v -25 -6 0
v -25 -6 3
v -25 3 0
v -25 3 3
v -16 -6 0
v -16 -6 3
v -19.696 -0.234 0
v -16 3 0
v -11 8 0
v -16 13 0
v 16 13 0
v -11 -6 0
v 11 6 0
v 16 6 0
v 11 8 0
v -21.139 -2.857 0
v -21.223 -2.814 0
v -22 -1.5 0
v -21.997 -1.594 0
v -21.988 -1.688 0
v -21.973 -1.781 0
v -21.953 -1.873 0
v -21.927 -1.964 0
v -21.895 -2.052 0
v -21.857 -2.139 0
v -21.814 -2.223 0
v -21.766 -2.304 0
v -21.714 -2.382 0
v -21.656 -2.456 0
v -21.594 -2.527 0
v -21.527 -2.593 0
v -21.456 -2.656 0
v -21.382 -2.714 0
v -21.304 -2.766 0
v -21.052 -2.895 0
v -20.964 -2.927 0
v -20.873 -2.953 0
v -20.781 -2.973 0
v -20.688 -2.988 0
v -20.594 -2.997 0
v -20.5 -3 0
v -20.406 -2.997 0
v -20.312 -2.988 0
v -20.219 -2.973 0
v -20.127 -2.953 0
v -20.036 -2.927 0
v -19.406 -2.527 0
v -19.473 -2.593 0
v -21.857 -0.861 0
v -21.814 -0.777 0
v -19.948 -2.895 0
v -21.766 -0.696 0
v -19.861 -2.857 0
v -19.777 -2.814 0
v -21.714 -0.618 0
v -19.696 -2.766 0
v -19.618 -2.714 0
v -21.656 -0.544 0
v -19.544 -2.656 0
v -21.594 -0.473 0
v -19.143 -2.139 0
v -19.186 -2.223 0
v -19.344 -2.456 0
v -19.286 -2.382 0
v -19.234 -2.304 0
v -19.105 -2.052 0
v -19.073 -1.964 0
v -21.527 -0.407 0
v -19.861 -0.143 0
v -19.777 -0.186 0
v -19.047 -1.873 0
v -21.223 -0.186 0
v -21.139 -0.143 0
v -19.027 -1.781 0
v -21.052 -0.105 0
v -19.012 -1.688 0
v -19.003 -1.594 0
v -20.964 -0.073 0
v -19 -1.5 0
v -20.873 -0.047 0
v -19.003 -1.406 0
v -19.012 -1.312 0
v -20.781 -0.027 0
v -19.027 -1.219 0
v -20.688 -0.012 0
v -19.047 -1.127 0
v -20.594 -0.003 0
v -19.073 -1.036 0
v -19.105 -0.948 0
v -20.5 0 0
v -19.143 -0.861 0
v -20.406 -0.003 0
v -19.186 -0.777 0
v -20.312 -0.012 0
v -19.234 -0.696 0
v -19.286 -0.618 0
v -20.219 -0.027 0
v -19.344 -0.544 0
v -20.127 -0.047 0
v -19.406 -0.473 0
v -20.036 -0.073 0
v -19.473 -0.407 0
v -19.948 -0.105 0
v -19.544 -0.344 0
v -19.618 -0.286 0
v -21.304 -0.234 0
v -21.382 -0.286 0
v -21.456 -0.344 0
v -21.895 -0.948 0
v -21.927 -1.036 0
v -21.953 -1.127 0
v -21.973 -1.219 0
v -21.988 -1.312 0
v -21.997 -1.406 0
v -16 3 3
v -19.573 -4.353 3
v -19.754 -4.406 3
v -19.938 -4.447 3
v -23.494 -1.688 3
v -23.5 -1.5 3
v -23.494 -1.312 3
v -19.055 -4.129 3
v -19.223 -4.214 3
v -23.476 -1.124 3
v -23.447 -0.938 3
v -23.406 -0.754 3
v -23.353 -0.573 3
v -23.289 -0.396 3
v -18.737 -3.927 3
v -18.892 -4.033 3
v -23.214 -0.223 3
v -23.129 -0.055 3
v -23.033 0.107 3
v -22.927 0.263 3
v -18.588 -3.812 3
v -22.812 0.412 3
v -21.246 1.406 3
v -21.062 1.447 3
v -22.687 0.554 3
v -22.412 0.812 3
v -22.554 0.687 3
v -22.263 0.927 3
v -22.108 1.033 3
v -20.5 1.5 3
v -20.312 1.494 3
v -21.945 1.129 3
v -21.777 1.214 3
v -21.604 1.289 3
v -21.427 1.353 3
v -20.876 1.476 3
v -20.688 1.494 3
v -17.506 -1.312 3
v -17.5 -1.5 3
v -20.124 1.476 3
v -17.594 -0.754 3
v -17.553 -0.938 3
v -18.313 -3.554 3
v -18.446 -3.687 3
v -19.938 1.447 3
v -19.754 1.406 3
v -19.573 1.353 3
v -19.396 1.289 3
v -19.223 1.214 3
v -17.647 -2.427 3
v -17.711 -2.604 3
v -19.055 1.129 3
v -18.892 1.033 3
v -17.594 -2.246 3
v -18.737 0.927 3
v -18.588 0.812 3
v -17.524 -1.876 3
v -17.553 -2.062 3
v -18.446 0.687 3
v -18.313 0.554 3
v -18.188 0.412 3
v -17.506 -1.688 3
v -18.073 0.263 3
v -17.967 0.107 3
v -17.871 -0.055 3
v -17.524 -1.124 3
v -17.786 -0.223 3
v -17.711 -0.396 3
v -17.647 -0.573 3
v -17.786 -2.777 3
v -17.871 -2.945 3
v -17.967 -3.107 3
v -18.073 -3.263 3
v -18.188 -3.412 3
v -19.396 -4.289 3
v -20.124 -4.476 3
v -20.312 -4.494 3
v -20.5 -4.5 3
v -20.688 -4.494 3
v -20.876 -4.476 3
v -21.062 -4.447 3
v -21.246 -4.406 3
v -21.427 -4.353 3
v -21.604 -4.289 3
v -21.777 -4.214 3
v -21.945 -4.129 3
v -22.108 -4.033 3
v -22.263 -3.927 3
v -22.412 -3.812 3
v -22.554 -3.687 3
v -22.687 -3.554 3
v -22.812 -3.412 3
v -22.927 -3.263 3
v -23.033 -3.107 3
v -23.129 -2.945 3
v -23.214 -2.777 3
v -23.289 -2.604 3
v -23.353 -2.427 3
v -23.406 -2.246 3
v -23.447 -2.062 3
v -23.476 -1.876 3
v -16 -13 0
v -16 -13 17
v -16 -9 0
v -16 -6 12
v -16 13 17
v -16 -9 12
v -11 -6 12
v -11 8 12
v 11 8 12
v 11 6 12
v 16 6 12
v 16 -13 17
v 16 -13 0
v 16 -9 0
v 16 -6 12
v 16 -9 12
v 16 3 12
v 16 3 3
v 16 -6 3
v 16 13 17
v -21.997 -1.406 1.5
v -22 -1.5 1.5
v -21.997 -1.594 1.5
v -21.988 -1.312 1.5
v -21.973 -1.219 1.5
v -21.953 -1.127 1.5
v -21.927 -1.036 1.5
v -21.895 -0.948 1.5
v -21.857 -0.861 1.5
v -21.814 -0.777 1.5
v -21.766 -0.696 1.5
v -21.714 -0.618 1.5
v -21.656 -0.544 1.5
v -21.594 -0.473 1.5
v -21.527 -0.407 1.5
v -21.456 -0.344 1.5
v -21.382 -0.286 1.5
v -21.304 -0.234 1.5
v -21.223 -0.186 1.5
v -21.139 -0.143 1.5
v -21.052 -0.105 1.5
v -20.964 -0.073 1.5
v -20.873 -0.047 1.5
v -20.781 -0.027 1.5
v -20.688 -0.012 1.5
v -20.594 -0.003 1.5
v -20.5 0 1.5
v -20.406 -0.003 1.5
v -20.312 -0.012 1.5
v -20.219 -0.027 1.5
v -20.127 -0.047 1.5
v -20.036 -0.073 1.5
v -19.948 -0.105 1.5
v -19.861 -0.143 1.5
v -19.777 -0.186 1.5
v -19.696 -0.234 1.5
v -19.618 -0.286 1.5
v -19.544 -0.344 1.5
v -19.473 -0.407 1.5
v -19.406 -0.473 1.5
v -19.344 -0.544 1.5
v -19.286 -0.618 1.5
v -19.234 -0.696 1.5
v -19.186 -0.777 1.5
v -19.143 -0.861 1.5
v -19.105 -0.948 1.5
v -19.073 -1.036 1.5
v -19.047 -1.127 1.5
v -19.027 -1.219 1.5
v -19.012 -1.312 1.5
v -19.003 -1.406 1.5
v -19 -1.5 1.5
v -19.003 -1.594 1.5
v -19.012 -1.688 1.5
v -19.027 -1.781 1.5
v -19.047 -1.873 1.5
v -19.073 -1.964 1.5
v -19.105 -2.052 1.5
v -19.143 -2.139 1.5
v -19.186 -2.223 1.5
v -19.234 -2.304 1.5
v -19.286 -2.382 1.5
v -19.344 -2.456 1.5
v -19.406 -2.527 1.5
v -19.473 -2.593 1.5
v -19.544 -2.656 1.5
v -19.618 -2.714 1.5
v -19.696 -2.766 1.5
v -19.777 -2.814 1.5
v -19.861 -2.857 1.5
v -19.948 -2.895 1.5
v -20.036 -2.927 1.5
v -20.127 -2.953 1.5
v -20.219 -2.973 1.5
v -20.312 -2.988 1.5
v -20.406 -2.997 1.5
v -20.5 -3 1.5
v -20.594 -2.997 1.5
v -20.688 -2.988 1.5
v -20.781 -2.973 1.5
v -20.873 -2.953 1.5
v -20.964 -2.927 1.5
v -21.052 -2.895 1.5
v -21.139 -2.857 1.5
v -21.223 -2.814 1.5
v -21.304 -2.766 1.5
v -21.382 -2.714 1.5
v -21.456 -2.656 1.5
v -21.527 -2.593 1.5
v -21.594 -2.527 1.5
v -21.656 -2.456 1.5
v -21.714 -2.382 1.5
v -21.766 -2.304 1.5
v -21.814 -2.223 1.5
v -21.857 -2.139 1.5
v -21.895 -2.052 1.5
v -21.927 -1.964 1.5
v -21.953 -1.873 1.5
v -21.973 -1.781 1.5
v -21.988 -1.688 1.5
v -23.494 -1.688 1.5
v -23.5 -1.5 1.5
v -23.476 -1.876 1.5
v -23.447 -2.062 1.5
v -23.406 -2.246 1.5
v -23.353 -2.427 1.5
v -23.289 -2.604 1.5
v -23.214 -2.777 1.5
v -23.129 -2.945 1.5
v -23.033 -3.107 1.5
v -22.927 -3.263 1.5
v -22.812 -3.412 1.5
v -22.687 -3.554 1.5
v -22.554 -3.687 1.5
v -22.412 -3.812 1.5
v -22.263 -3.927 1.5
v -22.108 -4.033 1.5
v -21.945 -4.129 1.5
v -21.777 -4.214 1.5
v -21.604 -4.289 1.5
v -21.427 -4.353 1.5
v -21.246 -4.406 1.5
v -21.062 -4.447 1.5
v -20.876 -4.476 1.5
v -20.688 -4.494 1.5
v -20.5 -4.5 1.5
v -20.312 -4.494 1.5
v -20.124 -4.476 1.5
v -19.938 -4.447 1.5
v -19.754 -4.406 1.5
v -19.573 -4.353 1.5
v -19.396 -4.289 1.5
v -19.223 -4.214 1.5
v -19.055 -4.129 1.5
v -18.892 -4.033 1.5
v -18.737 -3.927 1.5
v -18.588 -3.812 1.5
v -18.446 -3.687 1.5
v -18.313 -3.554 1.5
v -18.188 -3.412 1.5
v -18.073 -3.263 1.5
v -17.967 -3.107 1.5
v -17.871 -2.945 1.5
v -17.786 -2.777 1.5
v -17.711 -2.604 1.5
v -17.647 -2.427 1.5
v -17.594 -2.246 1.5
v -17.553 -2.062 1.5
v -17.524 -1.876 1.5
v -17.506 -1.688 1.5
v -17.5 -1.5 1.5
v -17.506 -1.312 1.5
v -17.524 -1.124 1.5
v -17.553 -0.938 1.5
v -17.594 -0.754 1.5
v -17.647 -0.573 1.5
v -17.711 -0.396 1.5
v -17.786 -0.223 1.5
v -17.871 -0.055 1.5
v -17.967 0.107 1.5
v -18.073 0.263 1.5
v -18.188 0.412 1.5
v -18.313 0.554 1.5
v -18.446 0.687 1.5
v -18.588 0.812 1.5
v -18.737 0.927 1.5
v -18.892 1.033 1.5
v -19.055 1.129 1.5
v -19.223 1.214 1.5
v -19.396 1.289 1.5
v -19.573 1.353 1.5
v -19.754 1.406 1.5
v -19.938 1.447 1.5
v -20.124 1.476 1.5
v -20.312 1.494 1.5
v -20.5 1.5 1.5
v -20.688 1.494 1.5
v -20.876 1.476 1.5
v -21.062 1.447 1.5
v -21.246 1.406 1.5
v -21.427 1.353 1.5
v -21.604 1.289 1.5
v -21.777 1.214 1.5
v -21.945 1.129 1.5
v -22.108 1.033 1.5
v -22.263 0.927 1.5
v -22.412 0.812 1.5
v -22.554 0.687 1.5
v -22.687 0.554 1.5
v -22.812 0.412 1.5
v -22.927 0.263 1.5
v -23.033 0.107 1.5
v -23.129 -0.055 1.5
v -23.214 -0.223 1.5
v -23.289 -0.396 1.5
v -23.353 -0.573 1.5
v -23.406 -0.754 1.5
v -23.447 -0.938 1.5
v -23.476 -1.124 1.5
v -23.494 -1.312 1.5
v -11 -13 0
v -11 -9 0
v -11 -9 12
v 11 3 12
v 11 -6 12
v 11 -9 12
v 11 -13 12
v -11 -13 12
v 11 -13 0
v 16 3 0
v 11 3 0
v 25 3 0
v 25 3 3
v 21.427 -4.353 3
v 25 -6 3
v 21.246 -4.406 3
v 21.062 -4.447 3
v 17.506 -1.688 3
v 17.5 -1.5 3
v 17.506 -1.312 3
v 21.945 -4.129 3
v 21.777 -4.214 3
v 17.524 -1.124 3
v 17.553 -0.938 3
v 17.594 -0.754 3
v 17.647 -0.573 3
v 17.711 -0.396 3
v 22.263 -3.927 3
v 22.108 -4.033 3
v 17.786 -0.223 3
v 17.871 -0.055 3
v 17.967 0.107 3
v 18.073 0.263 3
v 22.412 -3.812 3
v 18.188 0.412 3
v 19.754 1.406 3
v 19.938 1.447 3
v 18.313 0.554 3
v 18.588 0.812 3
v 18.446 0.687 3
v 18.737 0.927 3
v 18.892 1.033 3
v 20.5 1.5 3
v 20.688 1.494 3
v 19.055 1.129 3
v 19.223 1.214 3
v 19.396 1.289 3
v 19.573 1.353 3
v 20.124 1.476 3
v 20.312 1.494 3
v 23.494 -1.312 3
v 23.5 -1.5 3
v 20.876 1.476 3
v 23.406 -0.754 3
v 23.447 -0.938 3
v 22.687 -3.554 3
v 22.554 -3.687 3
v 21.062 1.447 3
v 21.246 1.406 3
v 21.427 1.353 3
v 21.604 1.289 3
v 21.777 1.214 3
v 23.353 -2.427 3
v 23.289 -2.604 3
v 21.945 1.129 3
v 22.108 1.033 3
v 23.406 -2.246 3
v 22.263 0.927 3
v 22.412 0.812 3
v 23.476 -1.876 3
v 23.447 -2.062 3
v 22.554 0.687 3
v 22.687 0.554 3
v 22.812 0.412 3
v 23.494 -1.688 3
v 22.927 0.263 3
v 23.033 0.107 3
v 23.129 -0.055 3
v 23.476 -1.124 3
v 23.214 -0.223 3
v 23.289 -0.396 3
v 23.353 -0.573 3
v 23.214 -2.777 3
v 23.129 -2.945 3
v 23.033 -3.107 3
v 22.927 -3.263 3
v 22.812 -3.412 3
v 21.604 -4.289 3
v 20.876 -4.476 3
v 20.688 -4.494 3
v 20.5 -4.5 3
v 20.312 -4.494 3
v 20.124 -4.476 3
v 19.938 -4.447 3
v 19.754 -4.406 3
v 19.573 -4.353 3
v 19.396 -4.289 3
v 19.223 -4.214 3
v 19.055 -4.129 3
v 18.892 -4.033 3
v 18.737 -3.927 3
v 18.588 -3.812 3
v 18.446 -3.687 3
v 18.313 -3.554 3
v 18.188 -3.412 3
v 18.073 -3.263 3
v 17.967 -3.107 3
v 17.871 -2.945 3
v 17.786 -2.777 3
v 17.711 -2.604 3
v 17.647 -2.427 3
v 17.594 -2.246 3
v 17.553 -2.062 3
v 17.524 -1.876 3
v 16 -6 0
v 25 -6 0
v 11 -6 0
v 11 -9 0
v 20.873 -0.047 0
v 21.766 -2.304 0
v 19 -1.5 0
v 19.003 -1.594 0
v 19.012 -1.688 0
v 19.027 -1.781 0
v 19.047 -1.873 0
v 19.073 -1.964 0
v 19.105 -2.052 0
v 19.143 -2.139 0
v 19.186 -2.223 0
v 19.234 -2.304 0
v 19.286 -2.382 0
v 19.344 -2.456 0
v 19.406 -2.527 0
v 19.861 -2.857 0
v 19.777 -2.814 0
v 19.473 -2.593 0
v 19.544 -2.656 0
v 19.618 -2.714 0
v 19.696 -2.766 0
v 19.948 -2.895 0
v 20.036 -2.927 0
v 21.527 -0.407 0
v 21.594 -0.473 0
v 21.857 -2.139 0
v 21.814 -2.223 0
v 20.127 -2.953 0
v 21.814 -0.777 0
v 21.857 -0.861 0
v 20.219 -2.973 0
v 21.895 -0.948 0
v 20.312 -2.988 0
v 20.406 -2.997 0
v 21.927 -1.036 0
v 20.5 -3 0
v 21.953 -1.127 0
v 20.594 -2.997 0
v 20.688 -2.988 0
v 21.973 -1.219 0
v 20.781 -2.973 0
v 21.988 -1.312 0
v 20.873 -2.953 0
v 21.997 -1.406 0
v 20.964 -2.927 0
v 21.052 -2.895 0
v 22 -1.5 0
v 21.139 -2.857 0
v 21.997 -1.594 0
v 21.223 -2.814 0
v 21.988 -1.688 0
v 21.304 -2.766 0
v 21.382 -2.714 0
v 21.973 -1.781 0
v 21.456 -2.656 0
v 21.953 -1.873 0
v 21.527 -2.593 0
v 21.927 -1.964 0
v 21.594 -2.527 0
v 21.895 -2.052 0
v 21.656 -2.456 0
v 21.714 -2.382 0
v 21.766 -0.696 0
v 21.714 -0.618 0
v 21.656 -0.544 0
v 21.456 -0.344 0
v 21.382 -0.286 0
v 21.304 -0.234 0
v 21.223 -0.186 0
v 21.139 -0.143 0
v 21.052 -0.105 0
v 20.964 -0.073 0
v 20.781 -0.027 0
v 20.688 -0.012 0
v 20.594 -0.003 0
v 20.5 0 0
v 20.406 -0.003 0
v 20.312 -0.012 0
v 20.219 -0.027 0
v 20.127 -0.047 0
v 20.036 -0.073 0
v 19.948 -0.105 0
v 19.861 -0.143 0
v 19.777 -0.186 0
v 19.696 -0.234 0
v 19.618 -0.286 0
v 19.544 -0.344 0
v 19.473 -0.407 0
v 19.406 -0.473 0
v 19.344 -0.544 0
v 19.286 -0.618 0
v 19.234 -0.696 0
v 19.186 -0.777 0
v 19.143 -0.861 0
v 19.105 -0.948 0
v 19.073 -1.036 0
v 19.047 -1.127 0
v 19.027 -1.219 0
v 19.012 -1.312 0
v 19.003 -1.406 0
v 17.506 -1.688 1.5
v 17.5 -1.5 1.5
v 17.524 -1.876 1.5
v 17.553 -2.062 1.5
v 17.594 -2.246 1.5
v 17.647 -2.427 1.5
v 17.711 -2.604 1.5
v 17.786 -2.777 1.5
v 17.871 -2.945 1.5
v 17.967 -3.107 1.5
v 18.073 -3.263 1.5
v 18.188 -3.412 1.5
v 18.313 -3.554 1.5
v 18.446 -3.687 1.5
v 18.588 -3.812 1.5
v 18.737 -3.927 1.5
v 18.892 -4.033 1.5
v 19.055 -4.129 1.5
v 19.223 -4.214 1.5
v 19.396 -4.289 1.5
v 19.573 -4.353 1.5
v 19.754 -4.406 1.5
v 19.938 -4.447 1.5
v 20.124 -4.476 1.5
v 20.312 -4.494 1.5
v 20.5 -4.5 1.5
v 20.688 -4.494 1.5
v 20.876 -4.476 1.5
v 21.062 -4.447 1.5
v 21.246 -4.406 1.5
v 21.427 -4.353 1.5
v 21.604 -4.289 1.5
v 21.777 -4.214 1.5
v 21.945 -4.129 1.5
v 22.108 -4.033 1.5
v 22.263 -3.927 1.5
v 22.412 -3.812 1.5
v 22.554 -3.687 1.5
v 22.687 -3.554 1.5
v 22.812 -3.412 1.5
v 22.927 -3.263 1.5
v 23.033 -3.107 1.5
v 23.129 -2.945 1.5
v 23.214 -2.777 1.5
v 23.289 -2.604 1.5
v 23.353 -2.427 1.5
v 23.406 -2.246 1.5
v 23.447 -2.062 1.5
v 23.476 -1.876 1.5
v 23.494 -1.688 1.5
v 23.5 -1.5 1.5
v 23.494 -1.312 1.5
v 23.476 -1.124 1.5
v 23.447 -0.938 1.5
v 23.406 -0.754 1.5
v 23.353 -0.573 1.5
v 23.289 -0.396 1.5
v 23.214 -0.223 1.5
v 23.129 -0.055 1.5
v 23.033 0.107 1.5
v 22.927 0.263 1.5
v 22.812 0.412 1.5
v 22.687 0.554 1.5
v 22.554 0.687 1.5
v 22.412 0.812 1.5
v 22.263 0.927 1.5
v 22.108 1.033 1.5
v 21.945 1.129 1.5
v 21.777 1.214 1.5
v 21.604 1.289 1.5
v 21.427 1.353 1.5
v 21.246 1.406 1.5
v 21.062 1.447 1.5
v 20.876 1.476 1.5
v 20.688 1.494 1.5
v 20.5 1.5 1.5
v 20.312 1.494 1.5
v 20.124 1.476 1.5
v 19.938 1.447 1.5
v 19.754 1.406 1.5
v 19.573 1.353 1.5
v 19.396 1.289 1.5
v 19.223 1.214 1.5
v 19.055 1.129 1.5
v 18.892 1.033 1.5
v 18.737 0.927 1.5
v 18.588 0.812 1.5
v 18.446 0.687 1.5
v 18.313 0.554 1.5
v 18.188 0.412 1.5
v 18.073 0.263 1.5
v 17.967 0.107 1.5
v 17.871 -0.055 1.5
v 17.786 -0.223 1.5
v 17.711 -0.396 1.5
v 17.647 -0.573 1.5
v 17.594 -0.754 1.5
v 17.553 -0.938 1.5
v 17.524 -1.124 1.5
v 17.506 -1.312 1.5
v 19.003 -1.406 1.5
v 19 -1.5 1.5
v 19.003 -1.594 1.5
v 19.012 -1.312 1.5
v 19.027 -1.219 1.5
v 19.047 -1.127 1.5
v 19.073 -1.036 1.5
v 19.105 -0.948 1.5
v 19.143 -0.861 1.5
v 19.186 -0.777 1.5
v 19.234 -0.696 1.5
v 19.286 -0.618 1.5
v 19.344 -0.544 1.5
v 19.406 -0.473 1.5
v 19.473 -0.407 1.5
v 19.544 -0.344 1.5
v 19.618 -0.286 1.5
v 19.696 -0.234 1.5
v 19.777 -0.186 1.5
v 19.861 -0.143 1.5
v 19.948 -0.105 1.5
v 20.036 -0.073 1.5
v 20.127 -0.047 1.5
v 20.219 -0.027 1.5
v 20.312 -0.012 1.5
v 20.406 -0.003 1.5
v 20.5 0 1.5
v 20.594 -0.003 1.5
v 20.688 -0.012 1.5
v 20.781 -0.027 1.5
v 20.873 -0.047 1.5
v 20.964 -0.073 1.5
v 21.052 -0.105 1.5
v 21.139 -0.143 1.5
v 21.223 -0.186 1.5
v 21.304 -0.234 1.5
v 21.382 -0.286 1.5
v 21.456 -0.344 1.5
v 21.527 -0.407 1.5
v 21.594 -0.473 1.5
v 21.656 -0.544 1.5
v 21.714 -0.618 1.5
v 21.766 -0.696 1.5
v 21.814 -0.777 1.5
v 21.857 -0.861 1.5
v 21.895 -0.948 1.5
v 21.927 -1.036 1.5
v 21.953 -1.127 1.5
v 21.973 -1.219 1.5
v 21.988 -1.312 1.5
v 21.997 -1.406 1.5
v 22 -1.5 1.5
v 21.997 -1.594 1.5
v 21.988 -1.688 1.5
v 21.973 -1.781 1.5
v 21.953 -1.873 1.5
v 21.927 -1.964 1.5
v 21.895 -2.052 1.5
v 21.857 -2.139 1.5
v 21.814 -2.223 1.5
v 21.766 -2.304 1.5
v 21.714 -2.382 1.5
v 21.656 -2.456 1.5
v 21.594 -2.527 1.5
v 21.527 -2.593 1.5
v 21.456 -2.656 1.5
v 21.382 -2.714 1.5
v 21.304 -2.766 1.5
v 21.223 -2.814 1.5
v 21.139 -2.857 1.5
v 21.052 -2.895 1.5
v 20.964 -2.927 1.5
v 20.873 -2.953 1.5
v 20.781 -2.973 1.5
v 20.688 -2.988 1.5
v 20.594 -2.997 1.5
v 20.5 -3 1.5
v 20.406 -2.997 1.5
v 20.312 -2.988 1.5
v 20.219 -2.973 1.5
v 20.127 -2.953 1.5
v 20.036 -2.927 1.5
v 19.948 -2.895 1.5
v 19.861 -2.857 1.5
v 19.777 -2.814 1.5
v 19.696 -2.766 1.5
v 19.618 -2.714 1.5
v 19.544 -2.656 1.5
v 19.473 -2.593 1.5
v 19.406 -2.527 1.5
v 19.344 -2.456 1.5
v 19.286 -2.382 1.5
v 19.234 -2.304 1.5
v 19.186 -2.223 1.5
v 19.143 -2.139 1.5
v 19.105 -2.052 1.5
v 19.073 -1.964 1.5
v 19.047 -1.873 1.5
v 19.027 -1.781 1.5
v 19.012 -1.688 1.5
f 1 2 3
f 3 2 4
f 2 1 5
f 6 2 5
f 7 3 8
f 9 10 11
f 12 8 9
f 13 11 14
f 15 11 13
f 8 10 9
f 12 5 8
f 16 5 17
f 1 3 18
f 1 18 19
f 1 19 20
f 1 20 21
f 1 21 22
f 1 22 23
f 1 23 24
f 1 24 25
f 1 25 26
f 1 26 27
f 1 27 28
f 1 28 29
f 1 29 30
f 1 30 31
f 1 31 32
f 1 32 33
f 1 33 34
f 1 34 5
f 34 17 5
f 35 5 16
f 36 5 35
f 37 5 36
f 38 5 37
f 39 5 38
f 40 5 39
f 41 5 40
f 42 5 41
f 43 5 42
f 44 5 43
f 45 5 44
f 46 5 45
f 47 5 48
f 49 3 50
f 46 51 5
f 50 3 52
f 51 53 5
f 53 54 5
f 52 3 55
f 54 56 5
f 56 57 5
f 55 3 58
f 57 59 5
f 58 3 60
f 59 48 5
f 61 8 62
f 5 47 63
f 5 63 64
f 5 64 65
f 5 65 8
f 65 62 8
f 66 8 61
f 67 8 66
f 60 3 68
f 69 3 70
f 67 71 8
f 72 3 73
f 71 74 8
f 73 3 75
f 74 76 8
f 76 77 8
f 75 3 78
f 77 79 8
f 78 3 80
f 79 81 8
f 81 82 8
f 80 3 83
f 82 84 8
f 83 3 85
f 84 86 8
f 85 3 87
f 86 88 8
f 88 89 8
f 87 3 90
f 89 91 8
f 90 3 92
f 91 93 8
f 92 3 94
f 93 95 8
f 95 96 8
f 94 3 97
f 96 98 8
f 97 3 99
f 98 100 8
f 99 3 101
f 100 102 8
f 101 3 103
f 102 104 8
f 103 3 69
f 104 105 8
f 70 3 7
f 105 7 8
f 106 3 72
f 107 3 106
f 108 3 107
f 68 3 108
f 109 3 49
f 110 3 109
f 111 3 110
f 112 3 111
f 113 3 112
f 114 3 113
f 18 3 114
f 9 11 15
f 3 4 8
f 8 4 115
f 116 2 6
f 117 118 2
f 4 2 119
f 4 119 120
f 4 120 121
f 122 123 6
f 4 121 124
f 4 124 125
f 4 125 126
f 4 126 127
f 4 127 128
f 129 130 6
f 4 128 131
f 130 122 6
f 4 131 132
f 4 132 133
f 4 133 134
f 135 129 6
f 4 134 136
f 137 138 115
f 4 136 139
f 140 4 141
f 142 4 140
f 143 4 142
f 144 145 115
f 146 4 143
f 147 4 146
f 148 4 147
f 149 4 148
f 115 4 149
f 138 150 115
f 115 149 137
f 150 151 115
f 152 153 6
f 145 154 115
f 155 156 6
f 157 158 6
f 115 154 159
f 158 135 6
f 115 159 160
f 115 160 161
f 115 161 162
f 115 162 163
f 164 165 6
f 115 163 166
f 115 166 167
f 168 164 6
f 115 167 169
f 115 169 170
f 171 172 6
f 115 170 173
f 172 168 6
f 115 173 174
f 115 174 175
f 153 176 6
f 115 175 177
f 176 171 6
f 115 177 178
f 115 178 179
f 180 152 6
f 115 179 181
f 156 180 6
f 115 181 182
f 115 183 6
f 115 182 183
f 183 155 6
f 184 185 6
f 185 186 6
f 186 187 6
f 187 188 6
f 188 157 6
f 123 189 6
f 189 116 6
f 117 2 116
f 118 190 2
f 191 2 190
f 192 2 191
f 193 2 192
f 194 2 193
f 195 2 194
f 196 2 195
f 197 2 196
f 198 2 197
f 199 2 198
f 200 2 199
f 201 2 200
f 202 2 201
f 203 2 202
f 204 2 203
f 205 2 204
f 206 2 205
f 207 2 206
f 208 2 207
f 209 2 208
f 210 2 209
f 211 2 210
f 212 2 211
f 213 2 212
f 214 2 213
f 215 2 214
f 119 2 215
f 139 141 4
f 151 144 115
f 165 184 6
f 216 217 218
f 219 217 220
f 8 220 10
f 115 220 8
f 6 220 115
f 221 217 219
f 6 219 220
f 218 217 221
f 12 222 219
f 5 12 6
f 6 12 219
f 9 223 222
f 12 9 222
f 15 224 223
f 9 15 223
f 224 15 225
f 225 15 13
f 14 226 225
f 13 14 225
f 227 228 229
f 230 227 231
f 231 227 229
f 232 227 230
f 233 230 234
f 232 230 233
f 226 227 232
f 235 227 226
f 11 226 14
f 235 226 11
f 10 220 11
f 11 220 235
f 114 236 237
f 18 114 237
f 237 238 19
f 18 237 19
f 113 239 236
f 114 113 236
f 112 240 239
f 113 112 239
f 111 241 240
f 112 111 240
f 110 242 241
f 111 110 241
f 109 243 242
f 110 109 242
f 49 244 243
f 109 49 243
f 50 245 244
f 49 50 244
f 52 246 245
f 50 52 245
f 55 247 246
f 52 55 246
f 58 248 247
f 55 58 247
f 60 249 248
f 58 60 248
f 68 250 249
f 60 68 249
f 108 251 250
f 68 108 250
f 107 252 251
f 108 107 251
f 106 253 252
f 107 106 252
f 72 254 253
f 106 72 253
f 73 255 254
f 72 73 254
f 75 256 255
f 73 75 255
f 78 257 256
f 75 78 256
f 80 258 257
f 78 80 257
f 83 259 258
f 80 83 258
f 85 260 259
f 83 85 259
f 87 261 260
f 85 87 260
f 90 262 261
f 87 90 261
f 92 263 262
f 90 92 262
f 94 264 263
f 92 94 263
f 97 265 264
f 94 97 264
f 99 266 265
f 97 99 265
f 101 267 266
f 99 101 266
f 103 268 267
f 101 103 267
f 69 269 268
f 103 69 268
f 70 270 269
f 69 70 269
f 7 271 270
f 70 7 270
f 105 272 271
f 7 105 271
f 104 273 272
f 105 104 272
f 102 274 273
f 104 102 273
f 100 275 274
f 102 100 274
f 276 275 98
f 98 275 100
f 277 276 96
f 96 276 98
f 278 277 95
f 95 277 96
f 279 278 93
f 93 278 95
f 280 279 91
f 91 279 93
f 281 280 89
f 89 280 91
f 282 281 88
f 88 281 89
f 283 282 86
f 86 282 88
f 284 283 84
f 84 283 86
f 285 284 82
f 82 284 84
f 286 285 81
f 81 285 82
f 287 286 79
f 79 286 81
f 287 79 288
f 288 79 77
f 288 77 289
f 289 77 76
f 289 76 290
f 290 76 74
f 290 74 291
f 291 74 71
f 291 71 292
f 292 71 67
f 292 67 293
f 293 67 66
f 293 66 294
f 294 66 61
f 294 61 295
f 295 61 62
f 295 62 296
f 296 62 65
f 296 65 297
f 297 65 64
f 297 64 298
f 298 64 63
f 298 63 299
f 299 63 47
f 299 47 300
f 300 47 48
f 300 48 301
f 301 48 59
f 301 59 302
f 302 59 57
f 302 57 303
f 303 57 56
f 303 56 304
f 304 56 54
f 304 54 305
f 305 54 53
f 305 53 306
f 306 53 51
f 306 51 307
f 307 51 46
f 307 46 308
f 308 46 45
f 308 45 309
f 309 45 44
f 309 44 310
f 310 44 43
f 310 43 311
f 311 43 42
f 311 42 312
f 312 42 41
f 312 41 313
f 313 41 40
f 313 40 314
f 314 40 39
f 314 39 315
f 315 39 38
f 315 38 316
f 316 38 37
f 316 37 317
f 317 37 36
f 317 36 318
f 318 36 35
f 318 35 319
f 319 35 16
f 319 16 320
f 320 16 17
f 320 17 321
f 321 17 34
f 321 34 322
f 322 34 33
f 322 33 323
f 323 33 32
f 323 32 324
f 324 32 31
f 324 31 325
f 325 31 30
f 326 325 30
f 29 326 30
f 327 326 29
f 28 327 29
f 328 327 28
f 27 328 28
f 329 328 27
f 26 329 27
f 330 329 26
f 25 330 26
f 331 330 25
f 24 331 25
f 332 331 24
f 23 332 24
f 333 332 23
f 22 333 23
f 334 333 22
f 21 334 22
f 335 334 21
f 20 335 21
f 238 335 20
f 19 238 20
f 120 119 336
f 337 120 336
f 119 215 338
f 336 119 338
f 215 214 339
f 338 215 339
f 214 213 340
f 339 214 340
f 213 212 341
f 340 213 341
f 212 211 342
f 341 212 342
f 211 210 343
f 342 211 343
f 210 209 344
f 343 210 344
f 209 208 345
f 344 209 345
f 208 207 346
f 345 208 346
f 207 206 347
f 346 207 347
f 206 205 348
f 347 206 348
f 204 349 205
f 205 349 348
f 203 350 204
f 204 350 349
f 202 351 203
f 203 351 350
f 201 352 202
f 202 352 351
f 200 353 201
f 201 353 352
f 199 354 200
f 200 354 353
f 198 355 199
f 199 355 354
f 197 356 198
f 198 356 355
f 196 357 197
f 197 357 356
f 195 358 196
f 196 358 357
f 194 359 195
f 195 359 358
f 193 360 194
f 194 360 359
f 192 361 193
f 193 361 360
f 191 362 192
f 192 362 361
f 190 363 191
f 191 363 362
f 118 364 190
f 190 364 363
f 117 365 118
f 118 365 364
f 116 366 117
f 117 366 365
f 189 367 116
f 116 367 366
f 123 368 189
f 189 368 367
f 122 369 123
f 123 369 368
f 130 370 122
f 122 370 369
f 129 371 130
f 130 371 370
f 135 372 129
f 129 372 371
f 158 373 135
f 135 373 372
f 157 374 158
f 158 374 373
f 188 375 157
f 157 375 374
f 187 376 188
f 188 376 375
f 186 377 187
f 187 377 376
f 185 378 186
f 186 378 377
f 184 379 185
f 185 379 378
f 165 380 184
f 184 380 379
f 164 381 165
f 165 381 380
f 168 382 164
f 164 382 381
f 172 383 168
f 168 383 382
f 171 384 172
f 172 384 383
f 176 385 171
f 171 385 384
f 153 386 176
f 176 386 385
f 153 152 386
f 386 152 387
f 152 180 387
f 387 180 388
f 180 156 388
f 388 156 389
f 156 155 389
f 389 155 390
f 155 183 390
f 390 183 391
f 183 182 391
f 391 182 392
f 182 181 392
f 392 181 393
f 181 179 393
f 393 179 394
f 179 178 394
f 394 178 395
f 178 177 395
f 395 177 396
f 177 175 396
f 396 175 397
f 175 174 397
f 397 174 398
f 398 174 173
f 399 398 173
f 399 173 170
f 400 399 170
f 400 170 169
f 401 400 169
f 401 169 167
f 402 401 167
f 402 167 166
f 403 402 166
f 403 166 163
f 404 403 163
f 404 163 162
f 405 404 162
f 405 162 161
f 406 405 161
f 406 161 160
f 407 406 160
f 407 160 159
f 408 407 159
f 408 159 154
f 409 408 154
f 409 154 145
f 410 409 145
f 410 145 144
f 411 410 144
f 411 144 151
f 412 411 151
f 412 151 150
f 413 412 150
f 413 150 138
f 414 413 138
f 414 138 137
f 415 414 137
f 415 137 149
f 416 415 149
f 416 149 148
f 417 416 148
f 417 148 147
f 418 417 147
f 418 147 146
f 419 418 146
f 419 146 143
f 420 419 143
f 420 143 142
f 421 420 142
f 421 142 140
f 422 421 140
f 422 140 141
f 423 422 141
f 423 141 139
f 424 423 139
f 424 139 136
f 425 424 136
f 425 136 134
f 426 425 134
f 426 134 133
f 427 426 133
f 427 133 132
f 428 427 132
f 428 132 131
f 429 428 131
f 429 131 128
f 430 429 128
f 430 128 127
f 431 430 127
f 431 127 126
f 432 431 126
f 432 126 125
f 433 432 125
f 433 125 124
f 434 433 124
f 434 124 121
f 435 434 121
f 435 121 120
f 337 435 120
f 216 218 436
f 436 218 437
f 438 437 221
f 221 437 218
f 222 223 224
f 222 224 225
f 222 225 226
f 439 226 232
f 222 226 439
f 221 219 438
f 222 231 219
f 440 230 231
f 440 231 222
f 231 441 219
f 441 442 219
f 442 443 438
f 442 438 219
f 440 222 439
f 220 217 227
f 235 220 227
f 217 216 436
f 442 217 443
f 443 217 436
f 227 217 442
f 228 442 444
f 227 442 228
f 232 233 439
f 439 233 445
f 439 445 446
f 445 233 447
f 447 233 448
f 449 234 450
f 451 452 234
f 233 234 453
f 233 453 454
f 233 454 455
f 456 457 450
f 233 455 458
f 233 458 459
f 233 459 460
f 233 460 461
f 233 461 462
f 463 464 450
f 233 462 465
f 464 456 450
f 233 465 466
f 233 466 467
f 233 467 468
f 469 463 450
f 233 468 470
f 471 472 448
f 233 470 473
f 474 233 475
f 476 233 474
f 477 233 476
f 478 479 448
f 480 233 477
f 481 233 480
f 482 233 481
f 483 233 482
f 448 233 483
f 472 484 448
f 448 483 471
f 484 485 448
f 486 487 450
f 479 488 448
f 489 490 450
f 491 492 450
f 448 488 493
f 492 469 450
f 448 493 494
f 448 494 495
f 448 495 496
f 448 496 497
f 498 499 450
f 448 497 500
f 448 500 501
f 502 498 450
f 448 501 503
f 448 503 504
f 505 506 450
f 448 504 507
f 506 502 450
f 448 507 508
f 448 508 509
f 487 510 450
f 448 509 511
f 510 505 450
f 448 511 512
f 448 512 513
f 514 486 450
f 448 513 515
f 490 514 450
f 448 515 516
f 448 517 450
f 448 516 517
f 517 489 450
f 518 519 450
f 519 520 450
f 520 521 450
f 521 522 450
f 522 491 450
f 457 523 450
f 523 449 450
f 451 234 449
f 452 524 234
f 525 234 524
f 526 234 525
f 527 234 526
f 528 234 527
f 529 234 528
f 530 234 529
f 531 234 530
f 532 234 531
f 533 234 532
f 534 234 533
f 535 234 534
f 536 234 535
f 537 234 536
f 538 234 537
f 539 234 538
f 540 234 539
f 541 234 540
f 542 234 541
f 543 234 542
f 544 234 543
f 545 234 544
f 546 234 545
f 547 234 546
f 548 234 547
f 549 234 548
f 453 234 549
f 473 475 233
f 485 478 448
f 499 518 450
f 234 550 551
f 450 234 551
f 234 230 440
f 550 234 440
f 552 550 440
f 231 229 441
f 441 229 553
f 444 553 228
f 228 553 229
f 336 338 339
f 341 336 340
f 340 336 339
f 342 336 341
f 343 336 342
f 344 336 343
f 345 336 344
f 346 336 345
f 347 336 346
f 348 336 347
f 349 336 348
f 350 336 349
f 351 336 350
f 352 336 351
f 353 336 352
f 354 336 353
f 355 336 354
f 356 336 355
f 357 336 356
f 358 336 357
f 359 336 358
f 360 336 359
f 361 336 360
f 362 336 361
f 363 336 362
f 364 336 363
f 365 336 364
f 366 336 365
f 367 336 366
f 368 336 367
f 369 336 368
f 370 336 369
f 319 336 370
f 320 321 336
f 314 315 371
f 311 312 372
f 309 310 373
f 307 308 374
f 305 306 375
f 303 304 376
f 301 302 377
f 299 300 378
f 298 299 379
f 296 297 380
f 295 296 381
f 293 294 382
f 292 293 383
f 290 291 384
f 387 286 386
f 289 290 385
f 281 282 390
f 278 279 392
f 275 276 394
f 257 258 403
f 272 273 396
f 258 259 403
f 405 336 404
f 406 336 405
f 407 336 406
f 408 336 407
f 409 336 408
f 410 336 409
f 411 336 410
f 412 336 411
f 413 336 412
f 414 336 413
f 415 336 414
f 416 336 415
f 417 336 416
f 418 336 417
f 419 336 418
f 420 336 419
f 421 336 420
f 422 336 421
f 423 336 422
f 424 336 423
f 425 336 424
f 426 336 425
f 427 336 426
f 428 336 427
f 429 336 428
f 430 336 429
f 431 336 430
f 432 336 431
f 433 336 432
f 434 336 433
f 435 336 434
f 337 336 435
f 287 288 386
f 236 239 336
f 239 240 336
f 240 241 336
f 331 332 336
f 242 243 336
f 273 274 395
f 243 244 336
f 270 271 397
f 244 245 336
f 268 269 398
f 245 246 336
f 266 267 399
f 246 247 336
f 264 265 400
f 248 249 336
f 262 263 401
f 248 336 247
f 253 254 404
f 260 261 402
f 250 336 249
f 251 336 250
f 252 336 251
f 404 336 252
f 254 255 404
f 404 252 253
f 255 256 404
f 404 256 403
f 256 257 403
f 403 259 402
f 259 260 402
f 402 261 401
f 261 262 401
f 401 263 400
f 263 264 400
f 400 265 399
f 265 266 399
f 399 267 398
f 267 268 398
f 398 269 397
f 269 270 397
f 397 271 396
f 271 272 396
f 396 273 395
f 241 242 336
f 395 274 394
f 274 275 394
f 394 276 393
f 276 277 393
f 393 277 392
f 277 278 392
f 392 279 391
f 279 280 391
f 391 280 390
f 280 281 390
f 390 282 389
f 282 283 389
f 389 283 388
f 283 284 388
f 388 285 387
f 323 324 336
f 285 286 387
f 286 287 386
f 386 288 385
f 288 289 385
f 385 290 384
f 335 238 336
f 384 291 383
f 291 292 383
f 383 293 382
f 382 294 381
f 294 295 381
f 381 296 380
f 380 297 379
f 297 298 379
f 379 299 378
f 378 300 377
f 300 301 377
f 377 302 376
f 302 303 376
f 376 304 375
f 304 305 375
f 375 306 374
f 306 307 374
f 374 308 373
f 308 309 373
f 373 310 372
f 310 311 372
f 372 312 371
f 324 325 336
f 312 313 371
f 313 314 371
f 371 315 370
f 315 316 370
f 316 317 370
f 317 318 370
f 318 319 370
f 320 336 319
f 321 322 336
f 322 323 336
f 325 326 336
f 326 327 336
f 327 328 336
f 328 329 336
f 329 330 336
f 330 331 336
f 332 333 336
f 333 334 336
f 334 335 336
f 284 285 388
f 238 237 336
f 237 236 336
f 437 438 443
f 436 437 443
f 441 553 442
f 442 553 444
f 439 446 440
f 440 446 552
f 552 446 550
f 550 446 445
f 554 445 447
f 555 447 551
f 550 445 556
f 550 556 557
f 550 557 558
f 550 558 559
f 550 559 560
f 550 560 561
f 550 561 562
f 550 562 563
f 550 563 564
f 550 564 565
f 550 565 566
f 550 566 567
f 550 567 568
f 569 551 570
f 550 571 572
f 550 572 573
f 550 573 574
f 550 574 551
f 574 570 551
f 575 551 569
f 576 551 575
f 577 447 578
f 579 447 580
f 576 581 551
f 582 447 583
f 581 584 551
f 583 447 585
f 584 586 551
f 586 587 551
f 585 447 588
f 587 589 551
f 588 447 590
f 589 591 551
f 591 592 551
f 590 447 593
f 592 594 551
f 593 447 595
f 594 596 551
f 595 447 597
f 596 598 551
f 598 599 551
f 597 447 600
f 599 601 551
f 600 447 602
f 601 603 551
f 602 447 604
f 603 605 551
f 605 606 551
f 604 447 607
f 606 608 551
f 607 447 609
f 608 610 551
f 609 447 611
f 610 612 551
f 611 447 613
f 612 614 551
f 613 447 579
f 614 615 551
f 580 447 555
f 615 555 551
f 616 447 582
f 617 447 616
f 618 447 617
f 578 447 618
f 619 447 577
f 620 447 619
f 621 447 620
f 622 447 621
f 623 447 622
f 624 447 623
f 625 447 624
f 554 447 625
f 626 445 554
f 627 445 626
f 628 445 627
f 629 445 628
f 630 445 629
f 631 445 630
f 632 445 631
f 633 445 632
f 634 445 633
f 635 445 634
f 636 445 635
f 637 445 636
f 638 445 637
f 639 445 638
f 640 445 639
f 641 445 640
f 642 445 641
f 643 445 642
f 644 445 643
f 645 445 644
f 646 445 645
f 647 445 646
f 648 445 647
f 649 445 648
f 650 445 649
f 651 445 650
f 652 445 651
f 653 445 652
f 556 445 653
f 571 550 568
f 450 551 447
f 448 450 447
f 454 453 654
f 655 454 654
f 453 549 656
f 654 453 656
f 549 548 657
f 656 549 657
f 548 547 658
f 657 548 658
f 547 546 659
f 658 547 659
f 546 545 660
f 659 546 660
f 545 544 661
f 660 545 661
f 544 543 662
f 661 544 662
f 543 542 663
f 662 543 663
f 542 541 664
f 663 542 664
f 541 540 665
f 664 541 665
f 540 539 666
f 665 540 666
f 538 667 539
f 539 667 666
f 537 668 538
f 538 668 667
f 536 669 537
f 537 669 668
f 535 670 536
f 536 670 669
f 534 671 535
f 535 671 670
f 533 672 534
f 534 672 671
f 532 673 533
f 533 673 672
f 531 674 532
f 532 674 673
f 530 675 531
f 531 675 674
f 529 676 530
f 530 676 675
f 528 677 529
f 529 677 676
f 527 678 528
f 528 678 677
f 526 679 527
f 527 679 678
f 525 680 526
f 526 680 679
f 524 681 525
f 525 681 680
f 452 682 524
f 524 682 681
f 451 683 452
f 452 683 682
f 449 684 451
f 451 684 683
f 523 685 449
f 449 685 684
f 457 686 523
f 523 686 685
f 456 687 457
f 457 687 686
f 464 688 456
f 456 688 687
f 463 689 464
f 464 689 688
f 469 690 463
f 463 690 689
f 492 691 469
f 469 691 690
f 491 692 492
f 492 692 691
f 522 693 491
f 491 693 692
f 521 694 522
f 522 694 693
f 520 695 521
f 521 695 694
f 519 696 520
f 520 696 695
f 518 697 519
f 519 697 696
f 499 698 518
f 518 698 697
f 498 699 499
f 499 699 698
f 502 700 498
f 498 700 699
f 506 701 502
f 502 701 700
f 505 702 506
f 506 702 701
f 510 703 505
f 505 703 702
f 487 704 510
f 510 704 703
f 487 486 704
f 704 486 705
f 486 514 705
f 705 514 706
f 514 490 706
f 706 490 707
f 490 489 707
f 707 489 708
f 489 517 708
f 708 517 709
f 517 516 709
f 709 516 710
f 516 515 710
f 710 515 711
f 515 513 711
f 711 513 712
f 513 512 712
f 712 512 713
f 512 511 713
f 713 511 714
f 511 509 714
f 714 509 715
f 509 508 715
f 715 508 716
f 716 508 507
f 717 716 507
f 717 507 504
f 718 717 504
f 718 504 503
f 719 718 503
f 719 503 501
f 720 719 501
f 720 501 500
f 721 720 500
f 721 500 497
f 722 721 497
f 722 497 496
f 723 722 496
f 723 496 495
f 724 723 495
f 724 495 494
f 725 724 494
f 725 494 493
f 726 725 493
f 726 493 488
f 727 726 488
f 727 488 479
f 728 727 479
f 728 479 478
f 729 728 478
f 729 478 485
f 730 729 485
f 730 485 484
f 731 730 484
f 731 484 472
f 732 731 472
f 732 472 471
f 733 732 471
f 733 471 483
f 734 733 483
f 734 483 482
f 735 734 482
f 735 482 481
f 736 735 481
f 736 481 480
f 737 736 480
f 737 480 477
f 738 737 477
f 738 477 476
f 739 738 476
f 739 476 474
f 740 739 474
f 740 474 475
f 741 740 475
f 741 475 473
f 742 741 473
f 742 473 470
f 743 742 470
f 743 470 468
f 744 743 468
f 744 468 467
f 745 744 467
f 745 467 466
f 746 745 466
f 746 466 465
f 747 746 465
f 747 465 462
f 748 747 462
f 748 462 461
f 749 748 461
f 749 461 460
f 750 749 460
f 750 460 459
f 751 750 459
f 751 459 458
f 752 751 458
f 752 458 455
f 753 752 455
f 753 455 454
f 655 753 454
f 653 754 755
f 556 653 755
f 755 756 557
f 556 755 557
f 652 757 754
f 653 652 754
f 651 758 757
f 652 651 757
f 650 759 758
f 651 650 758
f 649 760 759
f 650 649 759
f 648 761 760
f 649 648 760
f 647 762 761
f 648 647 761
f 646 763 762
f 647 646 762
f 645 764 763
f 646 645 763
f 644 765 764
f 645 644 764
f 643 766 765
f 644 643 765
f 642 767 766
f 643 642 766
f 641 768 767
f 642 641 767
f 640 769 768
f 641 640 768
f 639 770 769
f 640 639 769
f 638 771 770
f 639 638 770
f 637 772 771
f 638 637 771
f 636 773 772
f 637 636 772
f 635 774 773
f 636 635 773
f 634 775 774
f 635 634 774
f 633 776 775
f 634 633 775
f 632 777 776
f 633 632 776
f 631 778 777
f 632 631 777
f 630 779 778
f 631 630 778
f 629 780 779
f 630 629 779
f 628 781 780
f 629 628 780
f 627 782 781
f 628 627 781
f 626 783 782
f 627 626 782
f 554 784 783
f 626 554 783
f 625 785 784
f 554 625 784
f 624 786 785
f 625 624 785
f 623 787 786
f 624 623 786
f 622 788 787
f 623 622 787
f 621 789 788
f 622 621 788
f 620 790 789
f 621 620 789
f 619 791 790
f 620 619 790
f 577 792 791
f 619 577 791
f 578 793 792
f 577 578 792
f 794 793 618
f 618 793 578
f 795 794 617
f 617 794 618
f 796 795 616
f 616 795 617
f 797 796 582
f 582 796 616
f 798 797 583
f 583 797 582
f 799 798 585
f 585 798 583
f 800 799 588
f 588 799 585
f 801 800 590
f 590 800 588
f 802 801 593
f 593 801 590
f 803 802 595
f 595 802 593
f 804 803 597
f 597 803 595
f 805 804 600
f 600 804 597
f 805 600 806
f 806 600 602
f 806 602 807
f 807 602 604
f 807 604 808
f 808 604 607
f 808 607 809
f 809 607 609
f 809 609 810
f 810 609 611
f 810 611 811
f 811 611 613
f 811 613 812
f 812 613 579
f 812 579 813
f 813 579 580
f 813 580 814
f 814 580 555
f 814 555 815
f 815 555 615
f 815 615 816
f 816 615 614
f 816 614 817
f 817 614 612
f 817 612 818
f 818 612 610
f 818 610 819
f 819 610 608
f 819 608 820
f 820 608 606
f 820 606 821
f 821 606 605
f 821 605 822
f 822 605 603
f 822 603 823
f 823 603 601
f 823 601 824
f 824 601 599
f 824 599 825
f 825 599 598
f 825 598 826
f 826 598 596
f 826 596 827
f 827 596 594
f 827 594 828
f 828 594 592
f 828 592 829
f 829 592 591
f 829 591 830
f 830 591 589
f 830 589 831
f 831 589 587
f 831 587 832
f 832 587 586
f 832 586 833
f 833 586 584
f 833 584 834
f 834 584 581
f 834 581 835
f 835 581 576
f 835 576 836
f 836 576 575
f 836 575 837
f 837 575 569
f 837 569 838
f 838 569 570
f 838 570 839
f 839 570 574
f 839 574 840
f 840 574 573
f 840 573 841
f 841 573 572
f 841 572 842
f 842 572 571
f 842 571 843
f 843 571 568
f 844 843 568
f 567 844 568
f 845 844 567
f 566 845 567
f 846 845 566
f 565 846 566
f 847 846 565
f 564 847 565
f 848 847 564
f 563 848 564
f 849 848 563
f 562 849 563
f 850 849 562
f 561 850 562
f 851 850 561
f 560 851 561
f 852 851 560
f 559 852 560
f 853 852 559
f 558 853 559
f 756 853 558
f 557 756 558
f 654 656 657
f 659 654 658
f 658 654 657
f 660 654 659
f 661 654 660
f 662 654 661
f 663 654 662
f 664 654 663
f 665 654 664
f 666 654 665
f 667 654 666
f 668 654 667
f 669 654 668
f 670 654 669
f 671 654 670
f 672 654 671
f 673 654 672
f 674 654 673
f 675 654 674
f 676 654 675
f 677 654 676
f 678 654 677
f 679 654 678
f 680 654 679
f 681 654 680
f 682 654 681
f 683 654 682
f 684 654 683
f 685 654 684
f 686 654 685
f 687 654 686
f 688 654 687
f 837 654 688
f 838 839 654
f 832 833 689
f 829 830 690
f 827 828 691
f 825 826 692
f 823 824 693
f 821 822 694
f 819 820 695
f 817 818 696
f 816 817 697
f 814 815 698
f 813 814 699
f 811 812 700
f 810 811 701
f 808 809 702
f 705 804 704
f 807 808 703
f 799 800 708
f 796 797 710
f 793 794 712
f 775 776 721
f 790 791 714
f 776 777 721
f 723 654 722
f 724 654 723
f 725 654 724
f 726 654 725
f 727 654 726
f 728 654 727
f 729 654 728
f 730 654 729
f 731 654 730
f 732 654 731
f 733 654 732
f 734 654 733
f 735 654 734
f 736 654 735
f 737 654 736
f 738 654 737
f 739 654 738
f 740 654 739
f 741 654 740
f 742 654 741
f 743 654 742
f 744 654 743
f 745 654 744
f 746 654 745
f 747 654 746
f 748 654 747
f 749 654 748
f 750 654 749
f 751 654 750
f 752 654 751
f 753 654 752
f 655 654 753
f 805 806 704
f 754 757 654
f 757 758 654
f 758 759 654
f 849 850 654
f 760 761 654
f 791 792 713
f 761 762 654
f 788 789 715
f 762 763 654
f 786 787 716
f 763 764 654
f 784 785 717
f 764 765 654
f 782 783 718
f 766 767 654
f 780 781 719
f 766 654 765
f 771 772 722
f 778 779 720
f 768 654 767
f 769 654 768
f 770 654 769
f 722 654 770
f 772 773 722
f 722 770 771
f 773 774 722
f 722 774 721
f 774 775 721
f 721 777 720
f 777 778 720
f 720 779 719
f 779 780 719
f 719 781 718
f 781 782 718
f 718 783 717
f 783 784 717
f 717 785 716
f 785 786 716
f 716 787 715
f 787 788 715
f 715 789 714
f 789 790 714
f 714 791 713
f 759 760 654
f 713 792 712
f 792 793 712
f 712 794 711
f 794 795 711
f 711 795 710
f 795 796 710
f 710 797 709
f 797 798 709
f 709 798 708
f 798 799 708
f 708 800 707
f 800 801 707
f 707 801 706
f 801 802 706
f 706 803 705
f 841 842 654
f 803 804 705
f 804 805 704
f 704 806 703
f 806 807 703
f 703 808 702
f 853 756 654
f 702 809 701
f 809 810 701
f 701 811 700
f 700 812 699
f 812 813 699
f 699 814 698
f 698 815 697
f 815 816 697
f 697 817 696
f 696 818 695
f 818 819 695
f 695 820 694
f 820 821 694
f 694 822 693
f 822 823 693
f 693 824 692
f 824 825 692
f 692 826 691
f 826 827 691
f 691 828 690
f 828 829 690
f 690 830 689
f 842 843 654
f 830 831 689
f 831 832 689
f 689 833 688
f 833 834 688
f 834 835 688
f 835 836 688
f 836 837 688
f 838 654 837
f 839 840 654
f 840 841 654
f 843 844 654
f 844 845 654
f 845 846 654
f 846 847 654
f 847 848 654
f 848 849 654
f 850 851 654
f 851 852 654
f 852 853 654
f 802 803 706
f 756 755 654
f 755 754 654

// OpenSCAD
$fn=100;

servoClip();

module servoClip(){
	
  heigth = 12;
  width = 22;
  depth = 21;
  buffer = 5;
  
  translate([-(width+2*buffer)/2,-(depth+buffer)/2,0]){
  
    difference(){
  
      cube([width+2*buffer, depth+buffer, heigth+buffer]); 
  
      translate([buffer,0,0]){
        cube([width, depth, heigth]);
      }
        
        
      translate([0,4,0]){
        cube([buffer,3 , heigth]);
      }  
        
      translate([width+buffer,4,0]){
        cube([buffer,3 , heigth]);
      }   
        
      translate([width+buffer,16,0]){
        cube([buffer,3 , heigth]);
      }   
    }  
    
     translate([width+2*buffer,7,0]){
       
        difference(){
       
        cube([9,9,3]);
        
        translate([4.5,4.5,1.5]){
            cylinder(h=1.5, r=3);
          }

          translate([4.5,4.5,0]){
             cylinder(h=3, r=1.5);
          }
        }
    }
    
    translate([-9,7,0]){
       
        difference(){
       
        cube([9,9,3]);
        
        translate([4.5,4.5,1.5]){
          cylinder(h=1.5, r=3);
        }
          
        translate([4.5,4.5,0]){
          cylinder(h=3, r=1.5);
        }
      }  
    }
  }
}
